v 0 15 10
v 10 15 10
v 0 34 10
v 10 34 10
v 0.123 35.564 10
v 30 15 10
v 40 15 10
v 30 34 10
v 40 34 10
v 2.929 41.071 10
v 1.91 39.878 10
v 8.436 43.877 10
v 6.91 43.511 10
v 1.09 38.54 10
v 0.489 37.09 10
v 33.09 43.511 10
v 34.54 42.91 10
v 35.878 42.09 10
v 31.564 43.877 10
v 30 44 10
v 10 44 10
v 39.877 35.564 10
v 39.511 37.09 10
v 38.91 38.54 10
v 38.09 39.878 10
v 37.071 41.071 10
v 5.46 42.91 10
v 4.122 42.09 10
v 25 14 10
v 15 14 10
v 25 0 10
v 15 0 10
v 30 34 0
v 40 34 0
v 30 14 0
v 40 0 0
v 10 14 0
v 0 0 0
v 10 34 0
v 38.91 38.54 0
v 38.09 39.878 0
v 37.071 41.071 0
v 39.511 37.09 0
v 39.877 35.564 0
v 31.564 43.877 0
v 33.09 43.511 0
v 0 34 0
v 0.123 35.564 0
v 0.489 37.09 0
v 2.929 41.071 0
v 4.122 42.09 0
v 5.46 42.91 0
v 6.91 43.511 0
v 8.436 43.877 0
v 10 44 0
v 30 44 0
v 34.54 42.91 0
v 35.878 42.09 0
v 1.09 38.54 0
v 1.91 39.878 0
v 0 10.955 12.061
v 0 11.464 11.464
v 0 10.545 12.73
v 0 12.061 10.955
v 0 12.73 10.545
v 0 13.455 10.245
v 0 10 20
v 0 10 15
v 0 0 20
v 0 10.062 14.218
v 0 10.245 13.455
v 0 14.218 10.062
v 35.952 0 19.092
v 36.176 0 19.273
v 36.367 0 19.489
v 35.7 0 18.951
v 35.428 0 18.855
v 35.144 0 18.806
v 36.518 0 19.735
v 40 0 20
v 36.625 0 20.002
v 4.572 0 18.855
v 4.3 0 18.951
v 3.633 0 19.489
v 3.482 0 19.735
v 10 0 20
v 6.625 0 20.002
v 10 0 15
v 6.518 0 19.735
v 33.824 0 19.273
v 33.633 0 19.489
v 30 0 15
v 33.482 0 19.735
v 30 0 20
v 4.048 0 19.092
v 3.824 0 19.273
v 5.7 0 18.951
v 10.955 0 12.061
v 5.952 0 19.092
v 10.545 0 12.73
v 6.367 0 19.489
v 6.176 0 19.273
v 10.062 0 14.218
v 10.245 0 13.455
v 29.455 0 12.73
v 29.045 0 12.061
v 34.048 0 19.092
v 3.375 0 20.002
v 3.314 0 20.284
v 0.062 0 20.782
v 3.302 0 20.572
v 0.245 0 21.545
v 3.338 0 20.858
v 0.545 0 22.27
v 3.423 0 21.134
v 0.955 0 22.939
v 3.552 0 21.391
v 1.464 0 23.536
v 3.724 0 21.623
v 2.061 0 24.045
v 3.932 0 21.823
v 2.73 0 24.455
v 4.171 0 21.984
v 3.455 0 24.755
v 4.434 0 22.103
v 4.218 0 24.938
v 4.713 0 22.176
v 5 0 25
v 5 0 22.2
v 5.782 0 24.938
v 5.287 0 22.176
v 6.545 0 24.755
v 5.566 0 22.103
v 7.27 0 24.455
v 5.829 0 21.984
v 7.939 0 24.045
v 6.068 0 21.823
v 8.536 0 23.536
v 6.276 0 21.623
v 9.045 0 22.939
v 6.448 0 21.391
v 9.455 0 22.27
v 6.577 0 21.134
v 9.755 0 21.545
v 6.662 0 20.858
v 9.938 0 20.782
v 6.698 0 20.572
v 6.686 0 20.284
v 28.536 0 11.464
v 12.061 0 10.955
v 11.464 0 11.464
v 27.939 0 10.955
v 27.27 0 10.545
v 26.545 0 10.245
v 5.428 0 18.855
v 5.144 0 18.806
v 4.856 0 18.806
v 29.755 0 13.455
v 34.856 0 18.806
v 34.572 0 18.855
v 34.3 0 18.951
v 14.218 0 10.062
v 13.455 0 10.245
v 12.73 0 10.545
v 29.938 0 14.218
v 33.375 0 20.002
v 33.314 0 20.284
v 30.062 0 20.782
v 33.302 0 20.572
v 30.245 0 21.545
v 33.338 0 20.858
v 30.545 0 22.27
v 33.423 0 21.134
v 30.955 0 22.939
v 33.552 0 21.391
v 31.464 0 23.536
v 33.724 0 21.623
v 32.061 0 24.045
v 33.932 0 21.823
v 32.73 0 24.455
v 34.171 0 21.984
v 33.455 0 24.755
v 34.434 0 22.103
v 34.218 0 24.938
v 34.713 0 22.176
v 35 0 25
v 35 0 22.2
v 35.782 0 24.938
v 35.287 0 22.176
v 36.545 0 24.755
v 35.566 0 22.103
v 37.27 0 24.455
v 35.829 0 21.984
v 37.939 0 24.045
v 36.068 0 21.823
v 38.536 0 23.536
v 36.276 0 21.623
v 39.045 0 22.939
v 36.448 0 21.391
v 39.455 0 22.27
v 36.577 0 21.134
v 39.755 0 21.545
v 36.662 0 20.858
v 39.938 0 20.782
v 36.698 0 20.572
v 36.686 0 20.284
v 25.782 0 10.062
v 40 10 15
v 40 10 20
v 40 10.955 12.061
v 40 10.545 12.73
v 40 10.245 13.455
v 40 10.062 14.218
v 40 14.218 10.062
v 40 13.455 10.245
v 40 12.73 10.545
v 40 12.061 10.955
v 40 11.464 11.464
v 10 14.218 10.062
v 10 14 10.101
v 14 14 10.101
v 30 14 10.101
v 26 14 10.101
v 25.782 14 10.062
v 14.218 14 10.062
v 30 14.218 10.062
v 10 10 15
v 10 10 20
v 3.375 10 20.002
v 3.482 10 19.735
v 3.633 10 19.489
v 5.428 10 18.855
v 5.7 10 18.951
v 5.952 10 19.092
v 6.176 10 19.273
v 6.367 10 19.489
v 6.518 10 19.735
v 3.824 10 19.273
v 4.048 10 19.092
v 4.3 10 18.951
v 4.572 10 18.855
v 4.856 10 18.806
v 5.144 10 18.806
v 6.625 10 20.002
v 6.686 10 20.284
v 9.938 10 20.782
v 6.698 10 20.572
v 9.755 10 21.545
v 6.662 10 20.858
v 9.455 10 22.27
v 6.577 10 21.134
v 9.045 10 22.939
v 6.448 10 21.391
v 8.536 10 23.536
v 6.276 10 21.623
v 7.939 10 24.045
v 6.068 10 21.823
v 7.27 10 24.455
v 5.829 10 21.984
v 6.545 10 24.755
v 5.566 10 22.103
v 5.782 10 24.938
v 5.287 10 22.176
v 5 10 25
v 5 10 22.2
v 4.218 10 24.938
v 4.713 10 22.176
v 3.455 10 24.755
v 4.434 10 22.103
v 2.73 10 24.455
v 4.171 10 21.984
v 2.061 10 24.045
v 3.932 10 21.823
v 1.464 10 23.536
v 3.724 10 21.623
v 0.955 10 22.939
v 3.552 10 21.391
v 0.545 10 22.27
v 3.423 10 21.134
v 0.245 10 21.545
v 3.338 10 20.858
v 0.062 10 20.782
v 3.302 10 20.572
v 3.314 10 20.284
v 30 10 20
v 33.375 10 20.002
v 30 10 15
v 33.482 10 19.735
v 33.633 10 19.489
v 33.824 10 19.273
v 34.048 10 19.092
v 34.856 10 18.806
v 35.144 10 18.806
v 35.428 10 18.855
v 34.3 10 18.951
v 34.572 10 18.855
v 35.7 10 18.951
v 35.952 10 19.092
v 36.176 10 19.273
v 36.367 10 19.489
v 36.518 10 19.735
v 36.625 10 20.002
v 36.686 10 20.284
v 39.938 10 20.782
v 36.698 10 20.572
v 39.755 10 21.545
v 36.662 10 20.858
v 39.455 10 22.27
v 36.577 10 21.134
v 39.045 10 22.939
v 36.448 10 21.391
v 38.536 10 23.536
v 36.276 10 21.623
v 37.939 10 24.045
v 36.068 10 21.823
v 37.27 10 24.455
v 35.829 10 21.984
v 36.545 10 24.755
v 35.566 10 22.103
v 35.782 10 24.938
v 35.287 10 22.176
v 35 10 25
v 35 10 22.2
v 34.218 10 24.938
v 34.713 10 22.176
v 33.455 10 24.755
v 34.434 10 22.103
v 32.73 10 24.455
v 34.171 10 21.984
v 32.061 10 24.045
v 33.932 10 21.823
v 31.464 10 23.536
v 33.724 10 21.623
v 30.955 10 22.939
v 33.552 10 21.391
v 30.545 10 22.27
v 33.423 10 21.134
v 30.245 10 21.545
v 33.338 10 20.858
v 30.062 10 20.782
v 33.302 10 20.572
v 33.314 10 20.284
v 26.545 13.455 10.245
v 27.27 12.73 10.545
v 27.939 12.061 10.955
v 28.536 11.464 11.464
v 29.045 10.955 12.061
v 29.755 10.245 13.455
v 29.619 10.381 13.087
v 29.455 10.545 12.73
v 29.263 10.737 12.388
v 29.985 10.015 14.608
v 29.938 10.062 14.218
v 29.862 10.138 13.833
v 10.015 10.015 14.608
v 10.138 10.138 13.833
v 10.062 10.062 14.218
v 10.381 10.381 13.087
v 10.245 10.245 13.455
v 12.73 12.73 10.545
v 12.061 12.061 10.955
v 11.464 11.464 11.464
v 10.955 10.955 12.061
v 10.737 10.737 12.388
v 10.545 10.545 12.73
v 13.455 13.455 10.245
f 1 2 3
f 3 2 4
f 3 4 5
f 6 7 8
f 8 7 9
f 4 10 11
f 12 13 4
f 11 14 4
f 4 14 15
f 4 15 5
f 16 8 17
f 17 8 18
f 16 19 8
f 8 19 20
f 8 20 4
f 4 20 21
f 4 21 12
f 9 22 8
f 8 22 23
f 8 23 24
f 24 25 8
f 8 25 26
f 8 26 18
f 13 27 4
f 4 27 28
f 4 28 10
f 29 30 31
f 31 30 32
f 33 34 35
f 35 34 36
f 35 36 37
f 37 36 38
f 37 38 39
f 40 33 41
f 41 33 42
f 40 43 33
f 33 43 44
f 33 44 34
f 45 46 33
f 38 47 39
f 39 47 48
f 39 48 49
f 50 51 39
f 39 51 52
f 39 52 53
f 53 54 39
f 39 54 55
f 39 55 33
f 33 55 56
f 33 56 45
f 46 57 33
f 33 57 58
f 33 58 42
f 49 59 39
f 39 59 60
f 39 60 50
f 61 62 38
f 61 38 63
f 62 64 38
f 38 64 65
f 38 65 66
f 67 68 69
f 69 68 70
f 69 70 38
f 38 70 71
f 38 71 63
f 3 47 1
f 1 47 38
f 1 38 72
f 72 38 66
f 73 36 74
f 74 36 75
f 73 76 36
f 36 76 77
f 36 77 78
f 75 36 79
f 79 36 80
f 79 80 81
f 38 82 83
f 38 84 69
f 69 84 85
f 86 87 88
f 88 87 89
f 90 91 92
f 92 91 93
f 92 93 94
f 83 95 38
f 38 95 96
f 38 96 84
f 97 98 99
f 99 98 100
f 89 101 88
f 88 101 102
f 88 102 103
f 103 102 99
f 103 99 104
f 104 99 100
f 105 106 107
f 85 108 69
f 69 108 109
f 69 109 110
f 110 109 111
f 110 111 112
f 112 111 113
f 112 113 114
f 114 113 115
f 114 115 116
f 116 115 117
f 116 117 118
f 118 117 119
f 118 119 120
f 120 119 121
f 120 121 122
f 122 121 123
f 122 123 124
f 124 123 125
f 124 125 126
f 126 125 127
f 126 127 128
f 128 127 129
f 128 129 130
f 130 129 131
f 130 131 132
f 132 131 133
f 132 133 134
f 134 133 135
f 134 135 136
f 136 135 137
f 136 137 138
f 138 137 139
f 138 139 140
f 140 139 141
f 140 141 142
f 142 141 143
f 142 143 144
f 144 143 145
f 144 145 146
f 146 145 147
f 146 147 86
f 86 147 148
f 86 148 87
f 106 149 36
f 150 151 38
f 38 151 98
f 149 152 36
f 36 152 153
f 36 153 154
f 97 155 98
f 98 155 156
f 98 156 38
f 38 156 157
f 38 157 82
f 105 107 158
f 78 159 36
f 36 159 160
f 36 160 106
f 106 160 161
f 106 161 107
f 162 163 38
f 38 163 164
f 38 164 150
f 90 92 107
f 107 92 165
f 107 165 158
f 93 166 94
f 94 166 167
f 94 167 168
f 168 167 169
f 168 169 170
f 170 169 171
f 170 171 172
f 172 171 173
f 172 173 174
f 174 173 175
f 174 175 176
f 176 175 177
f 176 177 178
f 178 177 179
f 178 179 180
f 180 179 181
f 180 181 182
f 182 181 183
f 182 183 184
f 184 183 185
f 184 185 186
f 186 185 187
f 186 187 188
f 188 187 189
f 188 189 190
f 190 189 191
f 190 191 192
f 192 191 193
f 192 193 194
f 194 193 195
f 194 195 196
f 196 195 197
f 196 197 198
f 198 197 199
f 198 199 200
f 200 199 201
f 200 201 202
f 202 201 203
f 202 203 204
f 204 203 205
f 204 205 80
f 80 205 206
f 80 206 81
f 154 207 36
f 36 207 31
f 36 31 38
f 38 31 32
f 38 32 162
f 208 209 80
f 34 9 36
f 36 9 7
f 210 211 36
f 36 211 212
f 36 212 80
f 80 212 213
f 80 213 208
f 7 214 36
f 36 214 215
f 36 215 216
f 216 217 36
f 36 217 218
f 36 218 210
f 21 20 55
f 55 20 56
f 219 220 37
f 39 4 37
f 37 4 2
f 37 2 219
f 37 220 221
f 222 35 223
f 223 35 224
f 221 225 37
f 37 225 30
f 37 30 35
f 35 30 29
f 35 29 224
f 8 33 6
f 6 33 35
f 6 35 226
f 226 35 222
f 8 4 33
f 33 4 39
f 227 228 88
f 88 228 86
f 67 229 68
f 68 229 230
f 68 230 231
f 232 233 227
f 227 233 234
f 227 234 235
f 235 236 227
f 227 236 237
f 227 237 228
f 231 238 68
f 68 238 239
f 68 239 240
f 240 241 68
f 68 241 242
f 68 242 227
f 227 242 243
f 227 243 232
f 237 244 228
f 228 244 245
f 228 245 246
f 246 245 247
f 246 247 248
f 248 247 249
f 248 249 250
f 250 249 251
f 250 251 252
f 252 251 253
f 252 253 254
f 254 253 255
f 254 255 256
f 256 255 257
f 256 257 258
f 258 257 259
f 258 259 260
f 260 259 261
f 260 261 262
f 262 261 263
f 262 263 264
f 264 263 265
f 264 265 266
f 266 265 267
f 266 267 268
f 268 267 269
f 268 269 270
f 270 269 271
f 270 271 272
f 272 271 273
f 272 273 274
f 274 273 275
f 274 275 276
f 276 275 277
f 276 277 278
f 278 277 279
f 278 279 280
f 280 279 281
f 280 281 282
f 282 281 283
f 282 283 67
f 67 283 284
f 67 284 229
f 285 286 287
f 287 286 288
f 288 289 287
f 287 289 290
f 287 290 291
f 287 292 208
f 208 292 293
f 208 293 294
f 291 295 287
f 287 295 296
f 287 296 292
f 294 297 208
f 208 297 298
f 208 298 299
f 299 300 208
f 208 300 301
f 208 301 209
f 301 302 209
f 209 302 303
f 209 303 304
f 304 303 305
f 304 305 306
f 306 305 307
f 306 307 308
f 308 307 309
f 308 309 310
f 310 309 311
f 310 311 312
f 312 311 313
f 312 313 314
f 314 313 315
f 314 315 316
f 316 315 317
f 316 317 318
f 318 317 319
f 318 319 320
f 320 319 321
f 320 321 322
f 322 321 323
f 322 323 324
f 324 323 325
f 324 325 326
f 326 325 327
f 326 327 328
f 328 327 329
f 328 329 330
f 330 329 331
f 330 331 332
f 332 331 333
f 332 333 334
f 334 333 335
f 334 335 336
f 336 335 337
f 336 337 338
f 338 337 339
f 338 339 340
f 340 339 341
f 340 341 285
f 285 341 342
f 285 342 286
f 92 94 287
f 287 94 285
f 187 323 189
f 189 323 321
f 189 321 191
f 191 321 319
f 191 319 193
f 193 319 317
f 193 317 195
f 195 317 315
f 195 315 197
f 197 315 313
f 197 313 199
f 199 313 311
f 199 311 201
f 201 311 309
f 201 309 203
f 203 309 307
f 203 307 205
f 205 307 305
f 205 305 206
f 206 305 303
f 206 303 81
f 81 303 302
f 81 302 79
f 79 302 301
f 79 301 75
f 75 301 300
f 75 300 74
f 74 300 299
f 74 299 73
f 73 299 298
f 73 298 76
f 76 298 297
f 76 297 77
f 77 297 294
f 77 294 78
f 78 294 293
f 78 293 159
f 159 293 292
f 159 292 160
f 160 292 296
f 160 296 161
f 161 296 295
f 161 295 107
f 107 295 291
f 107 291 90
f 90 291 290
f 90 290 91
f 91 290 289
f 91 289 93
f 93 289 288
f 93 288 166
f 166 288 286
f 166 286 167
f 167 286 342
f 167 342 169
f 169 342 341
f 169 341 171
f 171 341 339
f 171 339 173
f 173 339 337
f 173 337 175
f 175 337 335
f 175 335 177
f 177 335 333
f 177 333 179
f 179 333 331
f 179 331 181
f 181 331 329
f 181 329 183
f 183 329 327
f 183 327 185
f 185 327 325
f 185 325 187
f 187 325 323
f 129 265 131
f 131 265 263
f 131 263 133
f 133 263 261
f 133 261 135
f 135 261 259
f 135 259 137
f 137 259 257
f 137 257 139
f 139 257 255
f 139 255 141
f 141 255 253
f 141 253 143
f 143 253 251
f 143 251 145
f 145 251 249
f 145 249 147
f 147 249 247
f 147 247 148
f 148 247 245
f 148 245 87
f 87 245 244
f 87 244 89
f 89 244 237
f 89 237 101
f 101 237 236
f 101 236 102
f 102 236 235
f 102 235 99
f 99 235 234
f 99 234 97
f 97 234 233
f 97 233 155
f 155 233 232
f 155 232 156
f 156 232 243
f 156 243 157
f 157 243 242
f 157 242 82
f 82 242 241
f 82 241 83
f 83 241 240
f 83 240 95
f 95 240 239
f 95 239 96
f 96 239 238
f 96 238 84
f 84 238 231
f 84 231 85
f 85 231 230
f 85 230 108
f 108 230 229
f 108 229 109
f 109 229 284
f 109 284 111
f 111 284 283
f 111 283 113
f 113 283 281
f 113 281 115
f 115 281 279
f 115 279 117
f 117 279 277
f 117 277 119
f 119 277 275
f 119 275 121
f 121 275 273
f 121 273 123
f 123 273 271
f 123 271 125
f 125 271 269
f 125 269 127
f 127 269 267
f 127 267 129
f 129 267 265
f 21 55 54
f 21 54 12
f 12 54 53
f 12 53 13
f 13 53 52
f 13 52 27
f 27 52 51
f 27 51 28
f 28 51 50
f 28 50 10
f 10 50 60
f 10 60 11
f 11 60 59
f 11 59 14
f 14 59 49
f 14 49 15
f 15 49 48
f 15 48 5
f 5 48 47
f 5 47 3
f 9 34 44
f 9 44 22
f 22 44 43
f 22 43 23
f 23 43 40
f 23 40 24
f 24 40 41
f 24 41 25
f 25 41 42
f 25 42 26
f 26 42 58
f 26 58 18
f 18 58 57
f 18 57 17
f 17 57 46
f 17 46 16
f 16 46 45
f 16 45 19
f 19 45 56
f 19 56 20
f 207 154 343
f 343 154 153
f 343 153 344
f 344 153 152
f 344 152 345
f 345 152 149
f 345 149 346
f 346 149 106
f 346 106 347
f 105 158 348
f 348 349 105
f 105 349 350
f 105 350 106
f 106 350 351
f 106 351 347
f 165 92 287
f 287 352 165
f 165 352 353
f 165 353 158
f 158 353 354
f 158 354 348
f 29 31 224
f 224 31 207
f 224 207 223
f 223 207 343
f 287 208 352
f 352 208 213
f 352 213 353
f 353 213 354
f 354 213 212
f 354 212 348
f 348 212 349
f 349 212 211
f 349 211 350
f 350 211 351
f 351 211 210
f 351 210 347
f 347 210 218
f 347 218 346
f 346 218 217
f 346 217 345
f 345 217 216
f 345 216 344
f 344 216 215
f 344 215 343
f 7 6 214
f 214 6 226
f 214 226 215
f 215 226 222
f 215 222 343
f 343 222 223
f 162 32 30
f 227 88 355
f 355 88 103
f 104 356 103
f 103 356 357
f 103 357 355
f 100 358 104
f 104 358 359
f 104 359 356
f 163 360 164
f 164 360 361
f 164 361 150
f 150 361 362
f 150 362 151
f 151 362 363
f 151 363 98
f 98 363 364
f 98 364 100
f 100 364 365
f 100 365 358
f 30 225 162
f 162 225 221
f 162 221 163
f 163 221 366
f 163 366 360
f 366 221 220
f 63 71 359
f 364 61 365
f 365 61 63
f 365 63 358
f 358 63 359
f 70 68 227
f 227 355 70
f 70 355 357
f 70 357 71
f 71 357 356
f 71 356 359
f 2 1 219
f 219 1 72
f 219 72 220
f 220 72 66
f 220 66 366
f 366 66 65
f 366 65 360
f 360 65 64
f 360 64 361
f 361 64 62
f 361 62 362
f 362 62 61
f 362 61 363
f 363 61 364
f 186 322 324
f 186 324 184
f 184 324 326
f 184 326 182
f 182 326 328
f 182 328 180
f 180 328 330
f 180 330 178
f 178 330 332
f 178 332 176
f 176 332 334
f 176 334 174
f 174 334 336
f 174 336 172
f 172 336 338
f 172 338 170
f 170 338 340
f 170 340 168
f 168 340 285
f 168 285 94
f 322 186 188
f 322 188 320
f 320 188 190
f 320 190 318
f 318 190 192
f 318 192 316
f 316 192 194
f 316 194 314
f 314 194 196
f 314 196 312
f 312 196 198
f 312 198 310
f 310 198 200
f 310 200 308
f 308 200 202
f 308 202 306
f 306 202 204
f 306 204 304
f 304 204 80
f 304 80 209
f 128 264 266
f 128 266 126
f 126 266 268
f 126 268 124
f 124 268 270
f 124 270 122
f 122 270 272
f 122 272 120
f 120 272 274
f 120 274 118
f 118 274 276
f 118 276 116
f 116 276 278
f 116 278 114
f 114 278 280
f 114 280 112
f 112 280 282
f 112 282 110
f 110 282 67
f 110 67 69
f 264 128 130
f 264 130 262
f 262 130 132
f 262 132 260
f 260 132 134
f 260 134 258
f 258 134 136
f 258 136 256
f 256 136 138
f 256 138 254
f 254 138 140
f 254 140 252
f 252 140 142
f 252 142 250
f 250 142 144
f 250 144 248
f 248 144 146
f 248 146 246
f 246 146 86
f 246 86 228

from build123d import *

# Parameters (mm, degrees)
ESQUISSE1_W        = 40
ESQUISSE1_H        = 44
ESQUISSE1_W_2      = 20
ESQUISSE1_H_2      = 20
BOSS_EXTRU_1_DEPTH = 10
ESQUISSE3_W        = 10
ESQUISSE3_H        = 10
BOSS_EXTRU_2_DEPTH = 15
D_GAGEMENT_M31_D   = 3.4
CONG_2_R           = 10
CONG_3_R           = 5


with BuildPart() as part:
    # Esquisse1 → Boss.-Extru.1 (new body)
    with BuildSketch(Plane.XY):
        with Locations((20, 22)):
            Rectangle(ESQUISSE1_W, ESQUISSE1_H)
        with Locations((20, 24)):
            Rectangle(ESQUISSE1_W_2, ESQUISSE1_H_2, mode=Mode.SUBTRACT)
    extrude(amount=BOSS_EXTRU_1_DEPTH)

    # Esquisse3 → Boss.-Extru.2 (add)
    with BuildSketch(Plane.XY.offset(10)):
        with Locations((35, 5)):
            Rectangle(ESQUISSE3_W, ESQUISSE3_H)
        with Locations((5, 5)):
            Rectangle(ESQUISSE3_W, ESQUISSE3_H)
    extrude(amount=BOSS_EXTRU_2_DEPTH)

    # Dégagement M31 (through all)
    with Locations(Plane(origin=(0, 10, 0), x_dir=(1, 0, 0), z_dir=(0, 1, 0))):
        with Locations((5, -20.5), (35, -20.5)):
            Hole(D_GAGEMENT_M31_D / 2)

    # Congé2
    cong_2_edges = [part.edges().sort_by_distance(p)[0] for p in [
        (0, 44, 5),
        (40, 44, 5),
    ]]
    fillet(cong_2_edges, radius=CONG_2_R)

    # Congé3
    # the kernel refuses this fillet: 5 mm, written as the material it adds along each edge
    with BuildSketch(Plane(origin=(40, 10, 10), x_dir=(0, 1, 0), z_dir=(-1, 0, 0)), Plane(origin=(30, 10, 10), x_dir=(-1, 0, 0), z_dir=(0, -1, 0))) as cong_3_piece_1:
        with BuildLine():
            CenterArc((CONG_3_R, -CONG_3_R), CONG_3_R, 90, 90)
            Line((0, -CONG_3_R), (0, 0))
            Line((0, 0), (CONG_3_R, 0))
        make_face()
    extrude(amount=10)
    with BuildSketch(Plane(origin=(0, 10, 10), x_dir=(0, 1, 0), z_dir=(1, 0, 0)), Plane(origin=(10, 10, 10), x_dir=(1, 0, 0), z_dir=(0, -1, 0))) as cong_3_piece_2:
        with BuildLine():
            CenterArc((CONG_3_R, CONG_3_R), CONG_3_R, 180, 90)
            Line((0, CONG_3_R), (0, 0))
            Line((0, 0), (CONG_3_R, 0))
        make_face()
    extrude(amount=10)
    with BuildSketch(Plane(origin=(30, 22.5, 10), x_dir=(-1, 0, 0), z_dir=(0, -1, 0))) as cong_3_piece_3a_section:
        with BuildLine():
            CenterArc((CONG_3_R, -CONG_3_R), CONG_3_R, 90, 90)
            Line((0, -CONG_3_R), (0, 0))
            Line((0, 0), (CONG_3_R, 0))
        make_face()
    cong_3_piece_3a = extrude(amount=22.5, mode=Mode.PRIVATE)
    cong_3_piece_3a = split(cong_3_piece_3a, bisect_by=Plane(origin=(28.868024429, 14, 11.131975571), z_dir=(0, -1, 0)), keep=Keep.TOP, mode=Mode.PRIVATE)
    cong_3_piece_3a = split(cong_3_piece_3a, bisect_by=Plane(origin=(28.868024429, 10, 11.131975571), z_dir=(0, 1, 0)), keep=Keep.TOP, mode=Mode.PRIVATE)
    with BuildSketch(Plane(origin=(40, 10, 10), x_dir=(0, 1, 0), z_dir=(-1, 0, 0))) as cong_3_piece_3b_section:
        with BuildLine():
            CenterArc((CONG_3_R, -CONG_3_R), CONG_3_R, 90, 90)
            Line((0, -CONG_3_R), (0, 0))
            Line((0, 0), (CONG_3_R, 0))
        make_face()
    cong_3_piece_3b = extrude(amount=22.5, mode=Mode.PRIVATE)
    cong_3_piece_3b = split(cong_3_piece_3b, bisect_by=Plane(origin=(30, 11.061263152, 11.15683257), z_dir=(-1, 0, 0)), keep=Keep.TOP, mode=Mode.PRIVATE)
    cong_3_piece_3b = split(cong_3_piece_3b, bisect_by=Plane(origin=(23.75, 14, 11.15683257), z_dir=(0, -1, 0)), keep=Keep.TOP, mode=Mode.PRIVATE)
    cong_3_piece_3 = cong_3_piece_3a & cong_3_piece_3b
    add(cong_3_piece_3)
    with BuildSketch(Plane(origin=(0, 10, 10), x_dir=(0, 1, 0), z_dir=(1, 0, 0))) as cong_3_piece_4a_section:
        with BuildLine():
            CenterArc((CONG_3_R, CONG_3_R), CONG_3_R, 180, 90)
            Line((0, CONG_3_R), (0, 0))
            Line((0, 0), (CONG_3_R, 0))
        make_face()
    cong_3_piece_4a = extrude(amount=22.5, mode=Mode.PRIVATE)
    cong_3_piece_4a = split(cong_3_piece_4a, bisect_by=Plane(origin=(10, 11.061263152, 11.15683257), z_dir=(1, 0, 0)), keep=Keep.TOP, mode=Mode.PRIVATE)
    cong_3_piece_4a = split(cong_3_piece_4a, bisect_by=Plane(origin=(16.25, 14, 11.15683257), z_dir=(0, -1, 0)), keep=Keep.TOP, mode=Mode.PRIVATE)
    with BuildSketch(Plane(origin=(10, 22.5, 10), x_dir=(1, 0, 0), z_dir=(0, -1, 0))) as cong_3_piece_4b_section:
        with BuildLine():
            CenterArc((CONG_3_R, CONG_3_R), CONG_3_R, 180, 90)
            Line((0, CONG_3_R), (0, 0))
            Line((0, 0), (CONG_3_R, 0))
        make_face()
    cong_3_piece_4b = extrude(amount=22.5, mode=Mode.PRIVATE)
    cong_3_piece_4b = split(cong_3_piece_4b, bisect_by=Plane(origin=(11.131975571, 14, 11.131975571), z_dir=(0, -1, 0)), keep=Keep.TOP, mode=Mode.PRIVATE)
    cong_3_piece_4b = split(cong_3_piece_4b, bisect_by=Plane(origin=(11.131975571, 10, 11.131975571), z_dir=(0, 1, 0)), keep=Keep.TOP, mode=Mode.PRIVATE)
    cong_3_piece_4 = cong_3_piece_4a & cong_3_piece_4b
    add(cong_3_piece_4)
    # the kernel refuses this fillet: 5 mm, written as the material it takes off along each edge
    with BuildSketch(Plane(origin=(40, -12.5, 25), x_dir=(0, 0, -1), z_dir=(0, 1, 0)), Plane(origin=(30, 22.5, 25), x_dir=(0, 0, -1), z_dir=(0, -1, 0))) as cong_3_2_piece_1:
        with BuildLine():
            CenterArc((CONG_3_R, CONG_3_R), CONG_3_R, 180, 90)
            Line((0, CONG_3_R), (0, 0))
            Line((0, 0), (CONG_3_R, 0))
        make_face()
    extrude(amount=35, mode=Mode.SUBTRACT)
    with BuildSketch(Plane(origin=(10, 22.5, 25), x_dir=(0, 0, -1), z_dir=(0, -1, 0)), Plane(origin=(0, -12.5, 25), x_dir=(0, 0, -1), z_dir=(0, 1, 0))) as cong_3_2_piece_2:
        with BuildLine():
            CenterArc((CONG_3_R, -CONG_3_R), CONG_3_R, 90, 90)
            Line((0, -CONG_3_R), (0, 0))
            Line((0, 0), (CONG_3_R, 0))
        make_face()
    extrude(amount=35, mode=Mode.SUBTRACT)


solid = part.part
